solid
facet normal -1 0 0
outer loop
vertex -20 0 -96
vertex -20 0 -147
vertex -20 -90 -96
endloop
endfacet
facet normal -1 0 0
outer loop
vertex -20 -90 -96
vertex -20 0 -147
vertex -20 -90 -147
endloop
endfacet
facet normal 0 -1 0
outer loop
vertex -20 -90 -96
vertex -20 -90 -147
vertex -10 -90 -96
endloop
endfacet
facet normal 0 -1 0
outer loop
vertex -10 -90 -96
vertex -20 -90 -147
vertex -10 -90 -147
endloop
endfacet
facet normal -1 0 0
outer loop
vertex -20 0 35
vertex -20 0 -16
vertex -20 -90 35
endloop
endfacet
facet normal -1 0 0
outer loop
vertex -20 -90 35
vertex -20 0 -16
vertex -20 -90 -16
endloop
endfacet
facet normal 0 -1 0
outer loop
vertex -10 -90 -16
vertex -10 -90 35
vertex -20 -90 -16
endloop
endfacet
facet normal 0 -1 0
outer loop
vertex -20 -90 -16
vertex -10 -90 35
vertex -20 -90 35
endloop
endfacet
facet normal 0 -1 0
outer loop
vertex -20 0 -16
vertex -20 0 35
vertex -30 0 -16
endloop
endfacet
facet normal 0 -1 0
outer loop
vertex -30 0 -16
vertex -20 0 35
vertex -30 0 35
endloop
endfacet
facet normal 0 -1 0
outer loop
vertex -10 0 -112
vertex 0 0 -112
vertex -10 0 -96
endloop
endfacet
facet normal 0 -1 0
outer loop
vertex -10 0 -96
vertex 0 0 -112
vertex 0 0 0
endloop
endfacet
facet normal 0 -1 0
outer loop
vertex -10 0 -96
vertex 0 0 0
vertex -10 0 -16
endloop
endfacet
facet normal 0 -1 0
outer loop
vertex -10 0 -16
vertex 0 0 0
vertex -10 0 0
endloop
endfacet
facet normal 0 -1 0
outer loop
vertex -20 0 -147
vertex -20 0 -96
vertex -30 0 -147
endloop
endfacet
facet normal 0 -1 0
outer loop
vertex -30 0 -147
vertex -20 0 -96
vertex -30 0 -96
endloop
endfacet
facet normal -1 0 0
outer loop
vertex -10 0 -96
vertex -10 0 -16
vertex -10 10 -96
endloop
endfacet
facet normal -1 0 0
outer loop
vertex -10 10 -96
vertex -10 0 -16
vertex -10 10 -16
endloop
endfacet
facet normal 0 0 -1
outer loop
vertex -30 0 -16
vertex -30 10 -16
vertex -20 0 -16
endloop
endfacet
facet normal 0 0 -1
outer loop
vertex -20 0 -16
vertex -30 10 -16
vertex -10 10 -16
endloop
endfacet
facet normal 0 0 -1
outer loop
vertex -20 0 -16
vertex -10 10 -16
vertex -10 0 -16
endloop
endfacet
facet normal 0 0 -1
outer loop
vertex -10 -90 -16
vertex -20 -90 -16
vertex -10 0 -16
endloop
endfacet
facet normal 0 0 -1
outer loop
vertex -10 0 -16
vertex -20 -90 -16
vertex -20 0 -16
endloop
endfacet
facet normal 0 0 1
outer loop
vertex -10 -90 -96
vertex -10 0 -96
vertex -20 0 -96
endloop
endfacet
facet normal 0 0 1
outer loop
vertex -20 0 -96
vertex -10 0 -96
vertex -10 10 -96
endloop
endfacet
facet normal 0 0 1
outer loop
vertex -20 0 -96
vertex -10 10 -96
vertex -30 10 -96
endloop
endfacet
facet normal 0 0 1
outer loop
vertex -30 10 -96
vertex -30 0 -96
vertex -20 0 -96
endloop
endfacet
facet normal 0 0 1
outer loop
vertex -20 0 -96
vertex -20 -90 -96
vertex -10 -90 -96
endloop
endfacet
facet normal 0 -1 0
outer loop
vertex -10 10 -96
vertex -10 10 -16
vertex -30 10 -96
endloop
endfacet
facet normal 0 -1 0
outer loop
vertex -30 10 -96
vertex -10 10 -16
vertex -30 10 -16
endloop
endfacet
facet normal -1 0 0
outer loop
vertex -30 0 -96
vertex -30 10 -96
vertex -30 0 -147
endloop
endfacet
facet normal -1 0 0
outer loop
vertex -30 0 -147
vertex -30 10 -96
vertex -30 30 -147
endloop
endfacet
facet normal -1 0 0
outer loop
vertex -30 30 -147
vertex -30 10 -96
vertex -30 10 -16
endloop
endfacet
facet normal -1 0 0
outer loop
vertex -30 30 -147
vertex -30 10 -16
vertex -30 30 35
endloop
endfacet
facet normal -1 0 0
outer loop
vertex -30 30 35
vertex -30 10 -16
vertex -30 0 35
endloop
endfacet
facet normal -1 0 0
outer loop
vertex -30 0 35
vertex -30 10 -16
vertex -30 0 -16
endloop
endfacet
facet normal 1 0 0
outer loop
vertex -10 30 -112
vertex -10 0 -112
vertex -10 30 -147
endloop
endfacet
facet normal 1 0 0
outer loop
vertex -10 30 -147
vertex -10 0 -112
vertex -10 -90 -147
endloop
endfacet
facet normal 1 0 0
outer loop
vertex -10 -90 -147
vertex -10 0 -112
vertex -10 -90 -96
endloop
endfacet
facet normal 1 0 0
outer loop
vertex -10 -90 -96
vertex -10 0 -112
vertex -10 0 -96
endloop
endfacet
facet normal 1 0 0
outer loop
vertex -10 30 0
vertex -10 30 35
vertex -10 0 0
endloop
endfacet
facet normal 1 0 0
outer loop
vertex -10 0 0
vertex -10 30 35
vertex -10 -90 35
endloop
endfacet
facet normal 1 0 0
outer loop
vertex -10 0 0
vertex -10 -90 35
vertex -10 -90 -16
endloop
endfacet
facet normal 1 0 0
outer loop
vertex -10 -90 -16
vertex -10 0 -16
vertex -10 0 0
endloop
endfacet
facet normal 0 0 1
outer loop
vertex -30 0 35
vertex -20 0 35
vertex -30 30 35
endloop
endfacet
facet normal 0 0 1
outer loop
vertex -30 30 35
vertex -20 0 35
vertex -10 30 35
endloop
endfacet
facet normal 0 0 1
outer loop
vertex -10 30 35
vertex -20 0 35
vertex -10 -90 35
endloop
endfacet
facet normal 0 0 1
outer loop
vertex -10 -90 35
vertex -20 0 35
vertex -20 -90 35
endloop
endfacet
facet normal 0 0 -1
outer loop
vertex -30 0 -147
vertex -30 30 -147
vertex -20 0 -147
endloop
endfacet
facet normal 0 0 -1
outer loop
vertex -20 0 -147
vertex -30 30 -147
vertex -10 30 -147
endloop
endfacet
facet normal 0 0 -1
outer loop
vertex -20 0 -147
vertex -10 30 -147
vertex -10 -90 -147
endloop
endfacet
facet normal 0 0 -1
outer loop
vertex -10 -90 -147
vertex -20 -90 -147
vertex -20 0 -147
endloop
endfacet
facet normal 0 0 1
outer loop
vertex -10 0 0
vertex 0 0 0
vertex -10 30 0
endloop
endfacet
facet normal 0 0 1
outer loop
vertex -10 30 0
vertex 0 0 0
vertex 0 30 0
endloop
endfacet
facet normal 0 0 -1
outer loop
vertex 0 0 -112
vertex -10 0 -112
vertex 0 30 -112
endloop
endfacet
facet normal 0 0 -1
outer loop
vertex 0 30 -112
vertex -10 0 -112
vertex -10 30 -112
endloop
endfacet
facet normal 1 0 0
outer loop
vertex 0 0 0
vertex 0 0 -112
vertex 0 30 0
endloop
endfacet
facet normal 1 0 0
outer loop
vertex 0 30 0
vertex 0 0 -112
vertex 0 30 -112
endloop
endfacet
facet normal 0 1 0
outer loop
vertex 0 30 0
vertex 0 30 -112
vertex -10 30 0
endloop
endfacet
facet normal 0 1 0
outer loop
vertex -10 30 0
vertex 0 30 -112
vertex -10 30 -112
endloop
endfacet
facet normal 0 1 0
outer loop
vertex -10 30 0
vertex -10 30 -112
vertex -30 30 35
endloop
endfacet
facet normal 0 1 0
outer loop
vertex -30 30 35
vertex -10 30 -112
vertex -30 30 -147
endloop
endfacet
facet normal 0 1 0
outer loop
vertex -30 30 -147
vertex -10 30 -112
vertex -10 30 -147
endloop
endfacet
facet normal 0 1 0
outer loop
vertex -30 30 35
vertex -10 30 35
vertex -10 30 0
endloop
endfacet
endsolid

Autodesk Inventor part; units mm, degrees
ref_plane "YZ Plane" through (0, 0, 0) normal (1, 0, 0) x (0, 1, 0)
ref_plane "XZ Plane" through (0, 0, 0) normal (0, 1, 0) x (-1, 0, 0)
ref_plane "XY Plane" through (0, 0, 0) normal (0, 0, 1) x (1, 0, 0)
sketch "Sketch1" plane through (0, 0, 0) normal (0, 1, 0) x (-1, 0, 0)
  line L0 (0, 0) -> (10, 0)
  line L1 (10, 0) -> (10, -112)
  line L2 (10, -112) -> (0, -112)
  line L3 (0, -112) -> (0, 0)
  line L4 (10, -112) -> (10, -147)
  line L5 (10, -147) -> (30, -147)
  line L6 (10, 0) -> (10, 35)
  line L7 (10, 35) -> (30, 35)
  line L8 (30, 35) -> (30, -147)
  dimension "d16" = 35
  dimension "d17" = 20
  dimension "d18" = 35
  dimension "d19" = 20
  dimension "d28" = 112
  dimension "d35" = 10
extrude "Extrusion1" add sketch "Sketch1" along normal blind 30
sketch "Sketch2" plane through (0, 0, 0) normal (0, -1, 0) x (1, 0, 0)
  line L0 (-30, -147) -> (-30, 35) projected
  line L1 (-30, -96) -> (-10, -96)
  line L2 (-10, -96) -> (-10, -16)
  line L3 (-10, -16) -> (-30, -16)
  line L4 (-30, -16) -> (-30, -96)
  line L5 (-10, 0) -> (0, 0) projected
  dimension "d22" = 20
  dimension "d23" = 80
  dimension "d25" = 16
extrude "Extrusion2" cut sketch "Sketch2" against normal blind 10
sketch "Sketch3" plane through (0, 0, 0) normal (0, -1, 0) x (1, 0, 0)
  line L0 (-10, -16) -> (-10, -96) projected
  line L1 (-10, -96) -> (-20, -96)
  line L2 (-20, -96) -> (-20, -147)
  line L3 (-20, -147) -> (-10, -147)
  line L4 (-10, -147) -> (-10, -96)
  line L5 (-10, -16) -> (-20, -16)
  line L6 (-20, -16) -> (-20, 35)
  line L7 (-20, 35) -> (-10, 35)
  line L8 (-10, 35) -> (-10, -16)
  point P0 (0, 0)
  dimension "d29" = 10
  dimension "d30" = 51
  dimension "d31" = 10
  dimension "d32" = 51
extrude "Extrusion3" add sketch "Sketch3" along normal blind 90
properties part number "CatwalkHolder"
